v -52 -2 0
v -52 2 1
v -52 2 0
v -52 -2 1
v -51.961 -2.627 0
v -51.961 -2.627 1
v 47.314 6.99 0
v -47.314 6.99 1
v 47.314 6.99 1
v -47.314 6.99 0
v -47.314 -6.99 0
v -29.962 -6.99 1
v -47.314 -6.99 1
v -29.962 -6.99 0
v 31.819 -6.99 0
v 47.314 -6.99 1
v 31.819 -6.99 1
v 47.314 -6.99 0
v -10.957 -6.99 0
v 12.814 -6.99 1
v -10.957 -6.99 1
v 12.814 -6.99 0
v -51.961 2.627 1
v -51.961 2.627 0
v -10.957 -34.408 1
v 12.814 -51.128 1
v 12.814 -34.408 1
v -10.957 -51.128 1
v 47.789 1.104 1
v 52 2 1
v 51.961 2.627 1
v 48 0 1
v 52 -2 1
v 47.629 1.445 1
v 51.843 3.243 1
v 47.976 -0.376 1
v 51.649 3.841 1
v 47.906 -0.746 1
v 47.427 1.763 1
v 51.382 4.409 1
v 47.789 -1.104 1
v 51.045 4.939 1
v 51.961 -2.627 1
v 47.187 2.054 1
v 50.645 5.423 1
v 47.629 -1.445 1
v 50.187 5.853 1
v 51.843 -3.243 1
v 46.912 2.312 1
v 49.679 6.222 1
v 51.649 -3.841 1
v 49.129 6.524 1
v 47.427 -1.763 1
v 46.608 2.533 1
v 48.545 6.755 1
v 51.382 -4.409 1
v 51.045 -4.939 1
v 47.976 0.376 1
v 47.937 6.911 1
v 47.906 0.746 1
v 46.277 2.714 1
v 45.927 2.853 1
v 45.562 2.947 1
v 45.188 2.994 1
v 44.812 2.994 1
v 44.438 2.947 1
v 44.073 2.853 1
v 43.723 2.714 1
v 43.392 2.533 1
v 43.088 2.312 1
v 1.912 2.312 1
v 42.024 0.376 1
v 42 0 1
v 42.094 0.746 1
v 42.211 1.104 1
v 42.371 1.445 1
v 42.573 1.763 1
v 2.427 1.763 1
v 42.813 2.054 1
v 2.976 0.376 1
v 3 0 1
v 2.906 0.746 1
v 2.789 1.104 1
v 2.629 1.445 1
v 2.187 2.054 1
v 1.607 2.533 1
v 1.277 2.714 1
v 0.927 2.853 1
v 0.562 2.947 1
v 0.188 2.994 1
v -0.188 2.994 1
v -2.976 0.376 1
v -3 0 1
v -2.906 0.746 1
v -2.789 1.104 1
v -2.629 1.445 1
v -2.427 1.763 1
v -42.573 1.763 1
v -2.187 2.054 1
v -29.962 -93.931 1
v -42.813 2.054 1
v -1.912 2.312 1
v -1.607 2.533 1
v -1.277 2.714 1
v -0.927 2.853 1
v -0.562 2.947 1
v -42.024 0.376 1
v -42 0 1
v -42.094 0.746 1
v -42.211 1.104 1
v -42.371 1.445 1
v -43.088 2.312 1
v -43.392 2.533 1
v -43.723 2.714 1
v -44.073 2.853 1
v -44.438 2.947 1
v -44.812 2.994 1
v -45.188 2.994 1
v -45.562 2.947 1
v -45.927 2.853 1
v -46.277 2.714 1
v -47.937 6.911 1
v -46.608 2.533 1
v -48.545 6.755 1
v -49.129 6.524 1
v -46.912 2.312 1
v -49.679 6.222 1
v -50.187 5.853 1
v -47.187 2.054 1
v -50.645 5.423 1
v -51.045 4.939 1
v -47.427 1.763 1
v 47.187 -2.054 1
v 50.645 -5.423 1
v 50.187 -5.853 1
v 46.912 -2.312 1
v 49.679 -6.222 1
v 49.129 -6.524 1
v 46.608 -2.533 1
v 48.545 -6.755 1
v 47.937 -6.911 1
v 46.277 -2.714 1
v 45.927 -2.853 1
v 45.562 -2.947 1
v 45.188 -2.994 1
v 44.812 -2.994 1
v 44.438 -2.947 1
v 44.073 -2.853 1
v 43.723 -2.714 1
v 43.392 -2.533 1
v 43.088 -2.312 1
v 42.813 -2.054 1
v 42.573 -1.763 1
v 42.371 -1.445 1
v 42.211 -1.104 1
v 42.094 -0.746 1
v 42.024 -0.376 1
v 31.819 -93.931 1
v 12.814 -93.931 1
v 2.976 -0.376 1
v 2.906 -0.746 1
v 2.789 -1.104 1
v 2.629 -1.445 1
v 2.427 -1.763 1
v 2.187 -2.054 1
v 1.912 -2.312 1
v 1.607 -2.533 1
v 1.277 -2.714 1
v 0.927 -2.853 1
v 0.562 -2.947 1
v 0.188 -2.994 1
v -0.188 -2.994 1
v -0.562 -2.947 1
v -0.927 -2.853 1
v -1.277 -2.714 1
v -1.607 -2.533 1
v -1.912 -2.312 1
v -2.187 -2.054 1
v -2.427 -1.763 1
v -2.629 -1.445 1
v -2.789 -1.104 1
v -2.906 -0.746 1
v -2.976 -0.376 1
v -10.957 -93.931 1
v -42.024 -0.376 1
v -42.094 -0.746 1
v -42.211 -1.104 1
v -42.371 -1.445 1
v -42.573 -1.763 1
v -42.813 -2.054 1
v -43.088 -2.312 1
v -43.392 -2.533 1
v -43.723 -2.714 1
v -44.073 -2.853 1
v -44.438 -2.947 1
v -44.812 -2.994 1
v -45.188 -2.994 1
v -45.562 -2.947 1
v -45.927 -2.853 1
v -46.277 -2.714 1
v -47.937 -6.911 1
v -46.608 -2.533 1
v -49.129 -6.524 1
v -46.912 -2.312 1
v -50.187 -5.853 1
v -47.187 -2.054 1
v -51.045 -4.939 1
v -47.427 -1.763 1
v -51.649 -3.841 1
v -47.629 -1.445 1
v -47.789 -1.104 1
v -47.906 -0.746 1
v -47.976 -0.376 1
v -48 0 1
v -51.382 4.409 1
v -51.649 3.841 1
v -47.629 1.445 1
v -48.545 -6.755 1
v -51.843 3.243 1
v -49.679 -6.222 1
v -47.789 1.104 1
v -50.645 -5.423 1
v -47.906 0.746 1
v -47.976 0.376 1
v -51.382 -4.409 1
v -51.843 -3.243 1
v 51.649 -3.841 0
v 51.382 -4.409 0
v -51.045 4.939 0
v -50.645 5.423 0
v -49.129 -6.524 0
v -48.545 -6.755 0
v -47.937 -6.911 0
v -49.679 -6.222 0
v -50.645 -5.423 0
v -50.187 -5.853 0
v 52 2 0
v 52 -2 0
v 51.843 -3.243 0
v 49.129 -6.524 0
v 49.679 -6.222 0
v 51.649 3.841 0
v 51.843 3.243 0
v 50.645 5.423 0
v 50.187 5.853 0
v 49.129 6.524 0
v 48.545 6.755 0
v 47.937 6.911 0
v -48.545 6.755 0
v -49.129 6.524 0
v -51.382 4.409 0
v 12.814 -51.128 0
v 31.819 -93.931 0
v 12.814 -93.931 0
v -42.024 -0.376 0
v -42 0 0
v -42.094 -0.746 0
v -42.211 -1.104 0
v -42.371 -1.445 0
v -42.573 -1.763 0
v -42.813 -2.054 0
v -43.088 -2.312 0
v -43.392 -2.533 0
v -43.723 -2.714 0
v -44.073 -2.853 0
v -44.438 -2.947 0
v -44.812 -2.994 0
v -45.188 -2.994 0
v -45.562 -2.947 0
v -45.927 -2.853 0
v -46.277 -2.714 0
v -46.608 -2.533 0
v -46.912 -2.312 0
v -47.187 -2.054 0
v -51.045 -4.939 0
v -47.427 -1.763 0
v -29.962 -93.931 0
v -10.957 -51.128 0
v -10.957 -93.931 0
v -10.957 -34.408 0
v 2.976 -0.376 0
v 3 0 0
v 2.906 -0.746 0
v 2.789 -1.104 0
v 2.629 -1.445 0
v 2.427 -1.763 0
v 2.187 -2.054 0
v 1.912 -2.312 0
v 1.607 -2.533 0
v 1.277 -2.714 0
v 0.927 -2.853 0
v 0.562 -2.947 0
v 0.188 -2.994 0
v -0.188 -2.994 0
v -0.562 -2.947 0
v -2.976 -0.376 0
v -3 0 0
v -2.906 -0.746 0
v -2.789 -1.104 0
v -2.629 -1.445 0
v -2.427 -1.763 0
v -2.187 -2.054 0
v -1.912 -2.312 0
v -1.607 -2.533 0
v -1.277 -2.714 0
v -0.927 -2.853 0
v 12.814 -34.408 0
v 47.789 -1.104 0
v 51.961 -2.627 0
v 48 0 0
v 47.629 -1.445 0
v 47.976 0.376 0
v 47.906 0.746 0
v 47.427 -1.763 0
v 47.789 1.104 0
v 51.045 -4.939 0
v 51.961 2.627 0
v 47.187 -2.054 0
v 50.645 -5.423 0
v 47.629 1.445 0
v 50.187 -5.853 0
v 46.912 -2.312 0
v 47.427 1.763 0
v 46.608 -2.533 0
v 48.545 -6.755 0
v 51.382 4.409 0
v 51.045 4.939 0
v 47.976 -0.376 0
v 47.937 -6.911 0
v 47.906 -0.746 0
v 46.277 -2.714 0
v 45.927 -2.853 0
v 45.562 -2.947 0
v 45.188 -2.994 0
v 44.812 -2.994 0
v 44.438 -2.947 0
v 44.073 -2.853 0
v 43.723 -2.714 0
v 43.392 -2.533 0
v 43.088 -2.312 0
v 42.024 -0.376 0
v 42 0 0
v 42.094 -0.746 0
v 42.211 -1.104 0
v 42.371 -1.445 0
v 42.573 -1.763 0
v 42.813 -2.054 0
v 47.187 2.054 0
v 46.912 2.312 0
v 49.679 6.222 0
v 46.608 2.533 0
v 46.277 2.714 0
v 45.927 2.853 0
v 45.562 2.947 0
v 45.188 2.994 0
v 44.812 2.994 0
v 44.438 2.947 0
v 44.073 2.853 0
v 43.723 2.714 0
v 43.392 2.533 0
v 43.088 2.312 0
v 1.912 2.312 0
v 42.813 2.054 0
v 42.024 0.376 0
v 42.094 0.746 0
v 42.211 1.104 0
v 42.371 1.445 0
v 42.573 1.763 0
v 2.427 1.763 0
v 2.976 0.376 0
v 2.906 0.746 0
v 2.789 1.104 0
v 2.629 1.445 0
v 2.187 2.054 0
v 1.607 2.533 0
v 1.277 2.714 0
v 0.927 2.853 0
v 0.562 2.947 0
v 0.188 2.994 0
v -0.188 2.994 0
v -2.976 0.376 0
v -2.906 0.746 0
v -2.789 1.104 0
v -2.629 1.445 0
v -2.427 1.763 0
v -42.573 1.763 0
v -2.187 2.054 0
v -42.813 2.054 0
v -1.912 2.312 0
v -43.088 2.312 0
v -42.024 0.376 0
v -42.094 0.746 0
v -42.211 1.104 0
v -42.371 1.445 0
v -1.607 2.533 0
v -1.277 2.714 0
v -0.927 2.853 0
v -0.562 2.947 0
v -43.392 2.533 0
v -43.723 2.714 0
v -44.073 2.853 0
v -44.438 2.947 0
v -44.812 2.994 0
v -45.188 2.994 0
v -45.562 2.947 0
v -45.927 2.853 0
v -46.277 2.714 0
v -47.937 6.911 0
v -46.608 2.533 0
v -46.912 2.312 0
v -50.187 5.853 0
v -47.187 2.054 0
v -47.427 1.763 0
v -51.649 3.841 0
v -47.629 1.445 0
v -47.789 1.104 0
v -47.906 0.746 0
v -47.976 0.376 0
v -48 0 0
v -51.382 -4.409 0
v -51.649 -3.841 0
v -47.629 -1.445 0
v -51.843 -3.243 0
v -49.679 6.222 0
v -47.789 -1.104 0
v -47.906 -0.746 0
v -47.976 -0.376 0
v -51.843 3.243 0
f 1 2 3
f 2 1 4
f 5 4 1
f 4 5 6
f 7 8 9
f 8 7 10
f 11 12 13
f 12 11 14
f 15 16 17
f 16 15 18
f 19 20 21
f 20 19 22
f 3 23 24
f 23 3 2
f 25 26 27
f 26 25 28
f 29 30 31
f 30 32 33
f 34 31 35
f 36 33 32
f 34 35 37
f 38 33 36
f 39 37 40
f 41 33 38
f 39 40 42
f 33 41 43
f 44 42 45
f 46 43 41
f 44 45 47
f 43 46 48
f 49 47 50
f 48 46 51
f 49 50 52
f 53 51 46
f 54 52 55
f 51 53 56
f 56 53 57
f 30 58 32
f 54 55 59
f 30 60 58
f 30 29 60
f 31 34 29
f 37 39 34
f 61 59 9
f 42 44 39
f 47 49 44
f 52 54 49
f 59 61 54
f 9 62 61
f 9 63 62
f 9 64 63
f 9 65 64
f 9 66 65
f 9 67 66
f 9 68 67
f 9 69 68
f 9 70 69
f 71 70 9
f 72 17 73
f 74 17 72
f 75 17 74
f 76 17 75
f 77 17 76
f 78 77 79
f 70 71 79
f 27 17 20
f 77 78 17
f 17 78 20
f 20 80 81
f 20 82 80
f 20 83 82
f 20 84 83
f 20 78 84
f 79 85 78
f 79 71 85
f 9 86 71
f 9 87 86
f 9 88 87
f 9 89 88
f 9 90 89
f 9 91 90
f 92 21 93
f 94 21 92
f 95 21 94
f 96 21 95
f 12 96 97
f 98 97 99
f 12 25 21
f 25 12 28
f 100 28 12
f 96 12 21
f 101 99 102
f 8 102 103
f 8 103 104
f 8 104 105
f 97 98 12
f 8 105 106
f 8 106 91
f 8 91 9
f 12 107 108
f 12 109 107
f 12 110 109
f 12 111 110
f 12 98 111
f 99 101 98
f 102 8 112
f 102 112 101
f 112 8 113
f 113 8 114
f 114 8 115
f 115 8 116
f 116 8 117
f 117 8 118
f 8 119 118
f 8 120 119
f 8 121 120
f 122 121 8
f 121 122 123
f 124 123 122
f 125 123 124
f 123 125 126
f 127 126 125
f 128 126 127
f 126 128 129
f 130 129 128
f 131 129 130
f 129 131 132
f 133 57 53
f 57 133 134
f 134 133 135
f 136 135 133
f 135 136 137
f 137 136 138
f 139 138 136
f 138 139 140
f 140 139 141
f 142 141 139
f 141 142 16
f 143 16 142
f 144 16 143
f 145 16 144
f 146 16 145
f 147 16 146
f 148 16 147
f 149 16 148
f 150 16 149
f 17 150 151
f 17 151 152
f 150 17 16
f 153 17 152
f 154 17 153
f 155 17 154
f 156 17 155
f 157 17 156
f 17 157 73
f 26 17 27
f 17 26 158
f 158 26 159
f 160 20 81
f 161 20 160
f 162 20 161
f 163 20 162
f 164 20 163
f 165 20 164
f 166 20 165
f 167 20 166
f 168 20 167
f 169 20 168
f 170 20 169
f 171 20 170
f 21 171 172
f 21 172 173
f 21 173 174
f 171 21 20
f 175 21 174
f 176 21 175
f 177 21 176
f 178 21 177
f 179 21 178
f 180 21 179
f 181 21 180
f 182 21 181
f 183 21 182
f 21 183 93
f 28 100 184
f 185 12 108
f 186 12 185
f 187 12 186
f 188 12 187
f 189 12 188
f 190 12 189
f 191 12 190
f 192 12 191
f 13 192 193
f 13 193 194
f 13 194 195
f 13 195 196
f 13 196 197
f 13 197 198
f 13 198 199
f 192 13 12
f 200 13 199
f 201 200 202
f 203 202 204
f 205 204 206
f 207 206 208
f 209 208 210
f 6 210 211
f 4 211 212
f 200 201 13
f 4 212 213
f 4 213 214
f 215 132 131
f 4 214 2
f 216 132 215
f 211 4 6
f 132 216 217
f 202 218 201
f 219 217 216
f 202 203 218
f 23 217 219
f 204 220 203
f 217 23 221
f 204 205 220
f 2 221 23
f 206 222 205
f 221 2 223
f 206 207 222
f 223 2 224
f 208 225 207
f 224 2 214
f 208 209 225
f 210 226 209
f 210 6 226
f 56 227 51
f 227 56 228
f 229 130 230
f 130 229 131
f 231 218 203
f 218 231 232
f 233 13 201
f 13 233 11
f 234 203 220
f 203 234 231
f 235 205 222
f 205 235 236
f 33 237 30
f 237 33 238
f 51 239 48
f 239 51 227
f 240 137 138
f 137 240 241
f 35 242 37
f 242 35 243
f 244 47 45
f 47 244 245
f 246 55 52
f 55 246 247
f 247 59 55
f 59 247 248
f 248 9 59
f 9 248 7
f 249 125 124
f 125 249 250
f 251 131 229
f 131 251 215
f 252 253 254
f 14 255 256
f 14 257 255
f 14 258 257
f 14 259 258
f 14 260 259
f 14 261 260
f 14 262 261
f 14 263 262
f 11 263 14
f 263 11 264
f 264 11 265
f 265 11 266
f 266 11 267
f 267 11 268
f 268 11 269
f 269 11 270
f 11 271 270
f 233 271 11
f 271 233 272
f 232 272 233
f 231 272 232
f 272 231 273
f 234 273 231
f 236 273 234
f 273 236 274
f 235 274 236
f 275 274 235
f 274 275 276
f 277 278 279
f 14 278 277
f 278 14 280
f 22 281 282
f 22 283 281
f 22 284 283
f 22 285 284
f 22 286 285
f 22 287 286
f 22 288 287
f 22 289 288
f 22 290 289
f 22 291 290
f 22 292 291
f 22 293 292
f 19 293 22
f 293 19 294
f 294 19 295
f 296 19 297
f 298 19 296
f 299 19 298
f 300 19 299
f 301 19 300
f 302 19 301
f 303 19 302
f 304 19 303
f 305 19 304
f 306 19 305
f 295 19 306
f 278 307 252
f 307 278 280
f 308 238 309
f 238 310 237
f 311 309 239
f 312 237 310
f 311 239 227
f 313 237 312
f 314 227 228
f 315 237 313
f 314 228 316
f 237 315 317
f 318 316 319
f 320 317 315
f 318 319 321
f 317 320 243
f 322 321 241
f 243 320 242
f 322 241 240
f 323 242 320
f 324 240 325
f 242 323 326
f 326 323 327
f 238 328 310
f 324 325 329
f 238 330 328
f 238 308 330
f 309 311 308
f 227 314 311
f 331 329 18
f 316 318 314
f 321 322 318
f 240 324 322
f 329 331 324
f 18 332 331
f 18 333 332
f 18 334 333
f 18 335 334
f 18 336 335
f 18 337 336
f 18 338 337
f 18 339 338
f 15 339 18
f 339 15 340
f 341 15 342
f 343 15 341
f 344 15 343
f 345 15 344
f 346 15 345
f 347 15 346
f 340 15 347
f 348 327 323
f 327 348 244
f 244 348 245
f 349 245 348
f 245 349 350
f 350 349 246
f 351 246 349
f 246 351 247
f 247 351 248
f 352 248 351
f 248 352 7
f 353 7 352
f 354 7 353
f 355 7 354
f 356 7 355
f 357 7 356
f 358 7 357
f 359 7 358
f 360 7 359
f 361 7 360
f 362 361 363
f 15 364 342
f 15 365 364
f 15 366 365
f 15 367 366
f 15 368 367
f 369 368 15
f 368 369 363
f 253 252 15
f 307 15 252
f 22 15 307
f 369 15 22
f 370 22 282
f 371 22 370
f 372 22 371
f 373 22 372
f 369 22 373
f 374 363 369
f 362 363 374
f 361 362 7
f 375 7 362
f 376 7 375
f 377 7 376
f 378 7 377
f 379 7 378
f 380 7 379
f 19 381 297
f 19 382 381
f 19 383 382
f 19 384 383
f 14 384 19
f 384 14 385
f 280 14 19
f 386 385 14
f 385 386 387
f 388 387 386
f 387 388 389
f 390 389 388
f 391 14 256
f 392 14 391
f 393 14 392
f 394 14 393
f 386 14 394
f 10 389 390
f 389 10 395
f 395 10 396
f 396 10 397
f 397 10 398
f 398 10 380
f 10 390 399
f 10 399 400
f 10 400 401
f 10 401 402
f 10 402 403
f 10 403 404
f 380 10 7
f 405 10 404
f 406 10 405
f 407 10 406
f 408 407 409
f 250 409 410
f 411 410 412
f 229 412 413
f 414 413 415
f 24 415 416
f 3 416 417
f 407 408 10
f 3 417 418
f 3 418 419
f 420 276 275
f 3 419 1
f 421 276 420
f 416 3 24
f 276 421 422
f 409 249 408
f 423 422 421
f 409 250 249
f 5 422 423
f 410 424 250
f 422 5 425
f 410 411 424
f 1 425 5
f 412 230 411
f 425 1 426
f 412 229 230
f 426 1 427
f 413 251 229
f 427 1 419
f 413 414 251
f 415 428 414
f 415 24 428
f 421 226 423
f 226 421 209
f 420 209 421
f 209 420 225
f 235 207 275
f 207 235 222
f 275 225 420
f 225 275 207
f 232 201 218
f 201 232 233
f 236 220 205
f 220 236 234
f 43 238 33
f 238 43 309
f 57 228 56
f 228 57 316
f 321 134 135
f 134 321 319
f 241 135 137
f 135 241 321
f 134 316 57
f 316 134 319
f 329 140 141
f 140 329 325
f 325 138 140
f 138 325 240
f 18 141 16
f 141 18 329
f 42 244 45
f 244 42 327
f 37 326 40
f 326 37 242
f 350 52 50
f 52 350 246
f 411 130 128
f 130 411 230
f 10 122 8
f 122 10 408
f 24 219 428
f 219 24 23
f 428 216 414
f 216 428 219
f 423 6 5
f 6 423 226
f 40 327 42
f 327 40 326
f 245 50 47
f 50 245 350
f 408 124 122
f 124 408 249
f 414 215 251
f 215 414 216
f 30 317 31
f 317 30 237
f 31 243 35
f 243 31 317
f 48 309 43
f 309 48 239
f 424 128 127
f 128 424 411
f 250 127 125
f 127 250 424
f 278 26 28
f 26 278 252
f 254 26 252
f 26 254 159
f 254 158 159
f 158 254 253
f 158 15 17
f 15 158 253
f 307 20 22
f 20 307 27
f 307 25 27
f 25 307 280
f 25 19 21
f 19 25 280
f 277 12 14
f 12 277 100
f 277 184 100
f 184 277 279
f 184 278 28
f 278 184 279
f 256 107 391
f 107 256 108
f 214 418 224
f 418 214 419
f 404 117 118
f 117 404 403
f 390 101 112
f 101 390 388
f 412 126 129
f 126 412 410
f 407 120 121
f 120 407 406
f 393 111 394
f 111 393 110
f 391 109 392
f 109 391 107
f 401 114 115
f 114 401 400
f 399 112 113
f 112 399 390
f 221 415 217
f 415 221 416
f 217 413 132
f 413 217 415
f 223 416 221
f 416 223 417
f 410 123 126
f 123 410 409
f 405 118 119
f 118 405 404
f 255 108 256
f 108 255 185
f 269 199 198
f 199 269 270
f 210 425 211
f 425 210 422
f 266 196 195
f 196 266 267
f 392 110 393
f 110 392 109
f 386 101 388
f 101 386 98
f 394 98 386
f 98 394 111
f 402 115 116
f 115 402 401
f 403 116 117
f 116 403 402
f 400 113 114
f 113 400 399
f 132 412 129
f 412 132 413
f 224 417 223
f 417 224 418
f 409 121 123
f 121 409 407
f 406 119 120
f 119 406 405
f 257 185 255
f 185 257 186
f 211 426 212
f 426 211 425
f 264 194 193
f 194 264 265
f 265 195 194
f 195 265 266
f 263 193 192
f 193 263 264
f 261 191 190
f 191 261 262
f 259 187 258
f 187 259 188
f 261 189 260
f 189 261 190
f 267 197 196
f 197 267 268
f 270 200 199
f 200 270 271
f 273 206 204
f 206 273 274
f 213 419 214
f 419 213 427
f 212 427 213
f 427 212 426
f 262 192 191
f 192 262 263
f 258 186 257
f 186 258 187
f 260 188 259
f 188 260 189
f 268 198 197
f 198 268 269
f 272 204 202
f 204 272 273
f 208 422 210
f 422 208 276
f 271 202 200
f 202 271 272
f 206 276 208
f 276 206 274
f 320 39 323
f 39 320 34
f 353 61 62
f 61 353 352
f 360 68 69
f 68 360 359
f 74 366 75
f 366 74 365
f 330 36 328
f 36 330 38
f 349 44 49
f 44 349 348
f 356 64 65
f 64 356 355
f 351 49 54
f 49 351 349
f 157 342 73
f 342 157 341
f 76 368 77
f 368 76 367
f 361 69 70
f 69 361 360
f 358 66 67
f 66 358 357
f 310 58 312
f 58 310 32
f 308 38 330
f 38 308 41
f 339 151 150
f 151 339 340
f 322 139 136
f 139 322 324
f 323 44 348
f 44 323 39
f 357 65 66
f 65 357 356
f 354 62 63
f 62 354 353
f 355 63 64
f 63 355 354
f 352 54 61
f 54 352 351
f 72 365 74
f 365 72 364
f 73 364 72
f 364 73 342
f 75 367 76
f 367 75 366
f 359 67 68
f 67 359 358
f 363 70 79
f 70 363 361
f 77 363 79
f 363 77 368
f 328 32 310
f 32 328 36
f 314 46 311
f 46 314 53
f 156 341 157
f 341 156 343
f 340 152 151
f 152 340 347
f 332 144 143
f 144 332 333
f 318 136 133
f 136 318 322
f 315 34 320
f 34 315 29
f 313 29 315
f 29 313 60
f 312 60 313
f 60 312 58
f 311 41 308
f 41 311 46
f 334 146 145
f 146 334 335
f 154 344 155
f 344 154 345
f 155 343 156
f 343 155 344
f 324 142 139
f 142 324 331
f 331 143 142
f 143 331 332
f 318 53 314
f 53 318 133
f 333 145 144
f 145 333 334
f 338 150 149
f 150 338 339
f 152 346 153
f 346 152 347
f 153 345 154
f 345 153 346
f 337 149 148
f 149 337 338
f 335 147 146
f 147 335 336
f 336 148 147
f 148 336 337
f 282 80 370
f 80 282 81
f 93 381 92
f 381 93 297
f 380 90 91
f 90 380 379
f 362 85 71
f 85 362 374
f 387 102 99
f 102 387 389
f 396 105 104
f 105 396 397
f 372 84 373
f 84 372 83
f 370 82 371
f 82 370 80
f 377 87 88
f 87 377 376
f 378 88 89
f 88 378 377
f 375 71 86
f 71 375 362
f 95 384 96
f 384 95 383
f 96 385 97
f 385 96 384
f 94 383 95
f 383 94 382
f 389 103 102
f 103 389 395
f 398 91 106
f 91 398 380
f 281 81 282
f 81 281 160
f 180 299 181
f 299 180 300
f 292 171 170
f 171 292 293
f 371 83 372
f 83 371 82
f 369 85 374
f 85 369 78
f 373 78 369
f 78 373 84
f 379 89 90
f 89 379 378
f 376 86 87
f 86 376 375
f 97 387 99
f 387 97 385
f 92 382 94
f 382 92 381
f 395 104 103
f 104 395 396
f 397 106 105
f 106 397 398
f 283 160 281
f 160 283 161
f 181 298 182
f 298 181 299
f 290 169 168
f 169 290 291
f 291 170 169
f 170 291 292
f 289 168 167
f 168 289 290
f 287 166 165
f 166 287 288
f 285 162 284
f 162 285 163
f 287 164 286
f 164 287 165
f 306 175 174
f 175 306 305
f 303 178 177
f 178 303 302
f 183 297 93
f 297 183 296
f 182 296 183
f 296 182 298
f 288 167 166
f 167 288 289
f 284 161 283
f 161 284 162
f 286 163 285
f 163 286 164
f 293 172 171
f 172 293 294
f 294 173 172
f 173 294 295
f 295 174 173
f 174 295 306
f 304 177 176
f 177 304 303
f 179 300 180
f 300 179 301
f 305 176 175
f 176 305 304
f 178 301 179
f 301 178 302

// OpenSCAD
$fn = 50;


difference() {
	union() {
		translate(v = [0, 0, 0]) {
			rotate(a = [0, 0, 0]) {
				hull() {
					translate(v = [-47.0000000000, 2.0000000000, 0]) {
						rotate(a = [0, 0, 0]) {
							translate(v = [0, 0, 0]) {
								rotate(a = [0, 0, 0]) {
									cylinder(h = 1, r = 5);
								}
							}
						}
					}
					translate(v = [47.0000000000, 2.0000000000, 0]) {
						rotate(a = [0, 0, 0]) {
							translate(v = [0, 0, 0]) {
								rotate(a = [0, 0, 0]) {
									cylinder(h = 1, r = 5);
								}
							}
						}
					}
					translate(v = [-47.0000000000, -2.0000000000, 0]) {
						rotate(a = [0, 0, 0]) {
							translate(v = [0, 0, 0]) {
								rotate(a = [0, 0, 0]) {
									cylinder(h = 1, r = 5);
								}
							}
						}
					}
					translate(v = [47.0000000000, -2.0000000000, 0]) {
						rotate(a = [0, 0, 0]) {
							translate(v = [0, 0, 0]) {
								rotate(a = [0, 0, 0]) {
									cylinder(h = 1, r = 5);
								}
							}
						}
					}
				}
			}
		}
		translate(v = [0, 0, 0]) {
			rotate(a = [0, 0, 0]) {
				linear_extrude(height = 1) {
					text(font = "DejaVu Sans Mono:style=Bold", halign = "center", size = 95, text = "H", valign = "top");
				}
			}
		}
	}
	union() {
		translate(v = [-45.0000000000, 0.0000000000, -125.0000000000]) {
			rotate(a = [0, 0, 0]) {
				cylinder(h = 250, r = 3.0000000000);
			}
		}
		translate(v = [45.0000000000, 0.0000000000, -125.0000000000]) {
			rotate(a = [0, 0, 0]) {
				cylinder(h = 250, r = 3.0000000000);
			}
		}
		translate(v = [45.0000000000, 0.0000000000, -125.0000000000]) {
			rotate(a = [0, 0, 0]) {
				cylinder(h = 250, r = 3.0000000000);
			}
		}
		translate(v = [0, 0, -125.0000000000]) {
			rotate(a = [0, 0, 0]) {
				cylinder(h = 250, r = 3.0000000000);
			}
		}
	}
}
